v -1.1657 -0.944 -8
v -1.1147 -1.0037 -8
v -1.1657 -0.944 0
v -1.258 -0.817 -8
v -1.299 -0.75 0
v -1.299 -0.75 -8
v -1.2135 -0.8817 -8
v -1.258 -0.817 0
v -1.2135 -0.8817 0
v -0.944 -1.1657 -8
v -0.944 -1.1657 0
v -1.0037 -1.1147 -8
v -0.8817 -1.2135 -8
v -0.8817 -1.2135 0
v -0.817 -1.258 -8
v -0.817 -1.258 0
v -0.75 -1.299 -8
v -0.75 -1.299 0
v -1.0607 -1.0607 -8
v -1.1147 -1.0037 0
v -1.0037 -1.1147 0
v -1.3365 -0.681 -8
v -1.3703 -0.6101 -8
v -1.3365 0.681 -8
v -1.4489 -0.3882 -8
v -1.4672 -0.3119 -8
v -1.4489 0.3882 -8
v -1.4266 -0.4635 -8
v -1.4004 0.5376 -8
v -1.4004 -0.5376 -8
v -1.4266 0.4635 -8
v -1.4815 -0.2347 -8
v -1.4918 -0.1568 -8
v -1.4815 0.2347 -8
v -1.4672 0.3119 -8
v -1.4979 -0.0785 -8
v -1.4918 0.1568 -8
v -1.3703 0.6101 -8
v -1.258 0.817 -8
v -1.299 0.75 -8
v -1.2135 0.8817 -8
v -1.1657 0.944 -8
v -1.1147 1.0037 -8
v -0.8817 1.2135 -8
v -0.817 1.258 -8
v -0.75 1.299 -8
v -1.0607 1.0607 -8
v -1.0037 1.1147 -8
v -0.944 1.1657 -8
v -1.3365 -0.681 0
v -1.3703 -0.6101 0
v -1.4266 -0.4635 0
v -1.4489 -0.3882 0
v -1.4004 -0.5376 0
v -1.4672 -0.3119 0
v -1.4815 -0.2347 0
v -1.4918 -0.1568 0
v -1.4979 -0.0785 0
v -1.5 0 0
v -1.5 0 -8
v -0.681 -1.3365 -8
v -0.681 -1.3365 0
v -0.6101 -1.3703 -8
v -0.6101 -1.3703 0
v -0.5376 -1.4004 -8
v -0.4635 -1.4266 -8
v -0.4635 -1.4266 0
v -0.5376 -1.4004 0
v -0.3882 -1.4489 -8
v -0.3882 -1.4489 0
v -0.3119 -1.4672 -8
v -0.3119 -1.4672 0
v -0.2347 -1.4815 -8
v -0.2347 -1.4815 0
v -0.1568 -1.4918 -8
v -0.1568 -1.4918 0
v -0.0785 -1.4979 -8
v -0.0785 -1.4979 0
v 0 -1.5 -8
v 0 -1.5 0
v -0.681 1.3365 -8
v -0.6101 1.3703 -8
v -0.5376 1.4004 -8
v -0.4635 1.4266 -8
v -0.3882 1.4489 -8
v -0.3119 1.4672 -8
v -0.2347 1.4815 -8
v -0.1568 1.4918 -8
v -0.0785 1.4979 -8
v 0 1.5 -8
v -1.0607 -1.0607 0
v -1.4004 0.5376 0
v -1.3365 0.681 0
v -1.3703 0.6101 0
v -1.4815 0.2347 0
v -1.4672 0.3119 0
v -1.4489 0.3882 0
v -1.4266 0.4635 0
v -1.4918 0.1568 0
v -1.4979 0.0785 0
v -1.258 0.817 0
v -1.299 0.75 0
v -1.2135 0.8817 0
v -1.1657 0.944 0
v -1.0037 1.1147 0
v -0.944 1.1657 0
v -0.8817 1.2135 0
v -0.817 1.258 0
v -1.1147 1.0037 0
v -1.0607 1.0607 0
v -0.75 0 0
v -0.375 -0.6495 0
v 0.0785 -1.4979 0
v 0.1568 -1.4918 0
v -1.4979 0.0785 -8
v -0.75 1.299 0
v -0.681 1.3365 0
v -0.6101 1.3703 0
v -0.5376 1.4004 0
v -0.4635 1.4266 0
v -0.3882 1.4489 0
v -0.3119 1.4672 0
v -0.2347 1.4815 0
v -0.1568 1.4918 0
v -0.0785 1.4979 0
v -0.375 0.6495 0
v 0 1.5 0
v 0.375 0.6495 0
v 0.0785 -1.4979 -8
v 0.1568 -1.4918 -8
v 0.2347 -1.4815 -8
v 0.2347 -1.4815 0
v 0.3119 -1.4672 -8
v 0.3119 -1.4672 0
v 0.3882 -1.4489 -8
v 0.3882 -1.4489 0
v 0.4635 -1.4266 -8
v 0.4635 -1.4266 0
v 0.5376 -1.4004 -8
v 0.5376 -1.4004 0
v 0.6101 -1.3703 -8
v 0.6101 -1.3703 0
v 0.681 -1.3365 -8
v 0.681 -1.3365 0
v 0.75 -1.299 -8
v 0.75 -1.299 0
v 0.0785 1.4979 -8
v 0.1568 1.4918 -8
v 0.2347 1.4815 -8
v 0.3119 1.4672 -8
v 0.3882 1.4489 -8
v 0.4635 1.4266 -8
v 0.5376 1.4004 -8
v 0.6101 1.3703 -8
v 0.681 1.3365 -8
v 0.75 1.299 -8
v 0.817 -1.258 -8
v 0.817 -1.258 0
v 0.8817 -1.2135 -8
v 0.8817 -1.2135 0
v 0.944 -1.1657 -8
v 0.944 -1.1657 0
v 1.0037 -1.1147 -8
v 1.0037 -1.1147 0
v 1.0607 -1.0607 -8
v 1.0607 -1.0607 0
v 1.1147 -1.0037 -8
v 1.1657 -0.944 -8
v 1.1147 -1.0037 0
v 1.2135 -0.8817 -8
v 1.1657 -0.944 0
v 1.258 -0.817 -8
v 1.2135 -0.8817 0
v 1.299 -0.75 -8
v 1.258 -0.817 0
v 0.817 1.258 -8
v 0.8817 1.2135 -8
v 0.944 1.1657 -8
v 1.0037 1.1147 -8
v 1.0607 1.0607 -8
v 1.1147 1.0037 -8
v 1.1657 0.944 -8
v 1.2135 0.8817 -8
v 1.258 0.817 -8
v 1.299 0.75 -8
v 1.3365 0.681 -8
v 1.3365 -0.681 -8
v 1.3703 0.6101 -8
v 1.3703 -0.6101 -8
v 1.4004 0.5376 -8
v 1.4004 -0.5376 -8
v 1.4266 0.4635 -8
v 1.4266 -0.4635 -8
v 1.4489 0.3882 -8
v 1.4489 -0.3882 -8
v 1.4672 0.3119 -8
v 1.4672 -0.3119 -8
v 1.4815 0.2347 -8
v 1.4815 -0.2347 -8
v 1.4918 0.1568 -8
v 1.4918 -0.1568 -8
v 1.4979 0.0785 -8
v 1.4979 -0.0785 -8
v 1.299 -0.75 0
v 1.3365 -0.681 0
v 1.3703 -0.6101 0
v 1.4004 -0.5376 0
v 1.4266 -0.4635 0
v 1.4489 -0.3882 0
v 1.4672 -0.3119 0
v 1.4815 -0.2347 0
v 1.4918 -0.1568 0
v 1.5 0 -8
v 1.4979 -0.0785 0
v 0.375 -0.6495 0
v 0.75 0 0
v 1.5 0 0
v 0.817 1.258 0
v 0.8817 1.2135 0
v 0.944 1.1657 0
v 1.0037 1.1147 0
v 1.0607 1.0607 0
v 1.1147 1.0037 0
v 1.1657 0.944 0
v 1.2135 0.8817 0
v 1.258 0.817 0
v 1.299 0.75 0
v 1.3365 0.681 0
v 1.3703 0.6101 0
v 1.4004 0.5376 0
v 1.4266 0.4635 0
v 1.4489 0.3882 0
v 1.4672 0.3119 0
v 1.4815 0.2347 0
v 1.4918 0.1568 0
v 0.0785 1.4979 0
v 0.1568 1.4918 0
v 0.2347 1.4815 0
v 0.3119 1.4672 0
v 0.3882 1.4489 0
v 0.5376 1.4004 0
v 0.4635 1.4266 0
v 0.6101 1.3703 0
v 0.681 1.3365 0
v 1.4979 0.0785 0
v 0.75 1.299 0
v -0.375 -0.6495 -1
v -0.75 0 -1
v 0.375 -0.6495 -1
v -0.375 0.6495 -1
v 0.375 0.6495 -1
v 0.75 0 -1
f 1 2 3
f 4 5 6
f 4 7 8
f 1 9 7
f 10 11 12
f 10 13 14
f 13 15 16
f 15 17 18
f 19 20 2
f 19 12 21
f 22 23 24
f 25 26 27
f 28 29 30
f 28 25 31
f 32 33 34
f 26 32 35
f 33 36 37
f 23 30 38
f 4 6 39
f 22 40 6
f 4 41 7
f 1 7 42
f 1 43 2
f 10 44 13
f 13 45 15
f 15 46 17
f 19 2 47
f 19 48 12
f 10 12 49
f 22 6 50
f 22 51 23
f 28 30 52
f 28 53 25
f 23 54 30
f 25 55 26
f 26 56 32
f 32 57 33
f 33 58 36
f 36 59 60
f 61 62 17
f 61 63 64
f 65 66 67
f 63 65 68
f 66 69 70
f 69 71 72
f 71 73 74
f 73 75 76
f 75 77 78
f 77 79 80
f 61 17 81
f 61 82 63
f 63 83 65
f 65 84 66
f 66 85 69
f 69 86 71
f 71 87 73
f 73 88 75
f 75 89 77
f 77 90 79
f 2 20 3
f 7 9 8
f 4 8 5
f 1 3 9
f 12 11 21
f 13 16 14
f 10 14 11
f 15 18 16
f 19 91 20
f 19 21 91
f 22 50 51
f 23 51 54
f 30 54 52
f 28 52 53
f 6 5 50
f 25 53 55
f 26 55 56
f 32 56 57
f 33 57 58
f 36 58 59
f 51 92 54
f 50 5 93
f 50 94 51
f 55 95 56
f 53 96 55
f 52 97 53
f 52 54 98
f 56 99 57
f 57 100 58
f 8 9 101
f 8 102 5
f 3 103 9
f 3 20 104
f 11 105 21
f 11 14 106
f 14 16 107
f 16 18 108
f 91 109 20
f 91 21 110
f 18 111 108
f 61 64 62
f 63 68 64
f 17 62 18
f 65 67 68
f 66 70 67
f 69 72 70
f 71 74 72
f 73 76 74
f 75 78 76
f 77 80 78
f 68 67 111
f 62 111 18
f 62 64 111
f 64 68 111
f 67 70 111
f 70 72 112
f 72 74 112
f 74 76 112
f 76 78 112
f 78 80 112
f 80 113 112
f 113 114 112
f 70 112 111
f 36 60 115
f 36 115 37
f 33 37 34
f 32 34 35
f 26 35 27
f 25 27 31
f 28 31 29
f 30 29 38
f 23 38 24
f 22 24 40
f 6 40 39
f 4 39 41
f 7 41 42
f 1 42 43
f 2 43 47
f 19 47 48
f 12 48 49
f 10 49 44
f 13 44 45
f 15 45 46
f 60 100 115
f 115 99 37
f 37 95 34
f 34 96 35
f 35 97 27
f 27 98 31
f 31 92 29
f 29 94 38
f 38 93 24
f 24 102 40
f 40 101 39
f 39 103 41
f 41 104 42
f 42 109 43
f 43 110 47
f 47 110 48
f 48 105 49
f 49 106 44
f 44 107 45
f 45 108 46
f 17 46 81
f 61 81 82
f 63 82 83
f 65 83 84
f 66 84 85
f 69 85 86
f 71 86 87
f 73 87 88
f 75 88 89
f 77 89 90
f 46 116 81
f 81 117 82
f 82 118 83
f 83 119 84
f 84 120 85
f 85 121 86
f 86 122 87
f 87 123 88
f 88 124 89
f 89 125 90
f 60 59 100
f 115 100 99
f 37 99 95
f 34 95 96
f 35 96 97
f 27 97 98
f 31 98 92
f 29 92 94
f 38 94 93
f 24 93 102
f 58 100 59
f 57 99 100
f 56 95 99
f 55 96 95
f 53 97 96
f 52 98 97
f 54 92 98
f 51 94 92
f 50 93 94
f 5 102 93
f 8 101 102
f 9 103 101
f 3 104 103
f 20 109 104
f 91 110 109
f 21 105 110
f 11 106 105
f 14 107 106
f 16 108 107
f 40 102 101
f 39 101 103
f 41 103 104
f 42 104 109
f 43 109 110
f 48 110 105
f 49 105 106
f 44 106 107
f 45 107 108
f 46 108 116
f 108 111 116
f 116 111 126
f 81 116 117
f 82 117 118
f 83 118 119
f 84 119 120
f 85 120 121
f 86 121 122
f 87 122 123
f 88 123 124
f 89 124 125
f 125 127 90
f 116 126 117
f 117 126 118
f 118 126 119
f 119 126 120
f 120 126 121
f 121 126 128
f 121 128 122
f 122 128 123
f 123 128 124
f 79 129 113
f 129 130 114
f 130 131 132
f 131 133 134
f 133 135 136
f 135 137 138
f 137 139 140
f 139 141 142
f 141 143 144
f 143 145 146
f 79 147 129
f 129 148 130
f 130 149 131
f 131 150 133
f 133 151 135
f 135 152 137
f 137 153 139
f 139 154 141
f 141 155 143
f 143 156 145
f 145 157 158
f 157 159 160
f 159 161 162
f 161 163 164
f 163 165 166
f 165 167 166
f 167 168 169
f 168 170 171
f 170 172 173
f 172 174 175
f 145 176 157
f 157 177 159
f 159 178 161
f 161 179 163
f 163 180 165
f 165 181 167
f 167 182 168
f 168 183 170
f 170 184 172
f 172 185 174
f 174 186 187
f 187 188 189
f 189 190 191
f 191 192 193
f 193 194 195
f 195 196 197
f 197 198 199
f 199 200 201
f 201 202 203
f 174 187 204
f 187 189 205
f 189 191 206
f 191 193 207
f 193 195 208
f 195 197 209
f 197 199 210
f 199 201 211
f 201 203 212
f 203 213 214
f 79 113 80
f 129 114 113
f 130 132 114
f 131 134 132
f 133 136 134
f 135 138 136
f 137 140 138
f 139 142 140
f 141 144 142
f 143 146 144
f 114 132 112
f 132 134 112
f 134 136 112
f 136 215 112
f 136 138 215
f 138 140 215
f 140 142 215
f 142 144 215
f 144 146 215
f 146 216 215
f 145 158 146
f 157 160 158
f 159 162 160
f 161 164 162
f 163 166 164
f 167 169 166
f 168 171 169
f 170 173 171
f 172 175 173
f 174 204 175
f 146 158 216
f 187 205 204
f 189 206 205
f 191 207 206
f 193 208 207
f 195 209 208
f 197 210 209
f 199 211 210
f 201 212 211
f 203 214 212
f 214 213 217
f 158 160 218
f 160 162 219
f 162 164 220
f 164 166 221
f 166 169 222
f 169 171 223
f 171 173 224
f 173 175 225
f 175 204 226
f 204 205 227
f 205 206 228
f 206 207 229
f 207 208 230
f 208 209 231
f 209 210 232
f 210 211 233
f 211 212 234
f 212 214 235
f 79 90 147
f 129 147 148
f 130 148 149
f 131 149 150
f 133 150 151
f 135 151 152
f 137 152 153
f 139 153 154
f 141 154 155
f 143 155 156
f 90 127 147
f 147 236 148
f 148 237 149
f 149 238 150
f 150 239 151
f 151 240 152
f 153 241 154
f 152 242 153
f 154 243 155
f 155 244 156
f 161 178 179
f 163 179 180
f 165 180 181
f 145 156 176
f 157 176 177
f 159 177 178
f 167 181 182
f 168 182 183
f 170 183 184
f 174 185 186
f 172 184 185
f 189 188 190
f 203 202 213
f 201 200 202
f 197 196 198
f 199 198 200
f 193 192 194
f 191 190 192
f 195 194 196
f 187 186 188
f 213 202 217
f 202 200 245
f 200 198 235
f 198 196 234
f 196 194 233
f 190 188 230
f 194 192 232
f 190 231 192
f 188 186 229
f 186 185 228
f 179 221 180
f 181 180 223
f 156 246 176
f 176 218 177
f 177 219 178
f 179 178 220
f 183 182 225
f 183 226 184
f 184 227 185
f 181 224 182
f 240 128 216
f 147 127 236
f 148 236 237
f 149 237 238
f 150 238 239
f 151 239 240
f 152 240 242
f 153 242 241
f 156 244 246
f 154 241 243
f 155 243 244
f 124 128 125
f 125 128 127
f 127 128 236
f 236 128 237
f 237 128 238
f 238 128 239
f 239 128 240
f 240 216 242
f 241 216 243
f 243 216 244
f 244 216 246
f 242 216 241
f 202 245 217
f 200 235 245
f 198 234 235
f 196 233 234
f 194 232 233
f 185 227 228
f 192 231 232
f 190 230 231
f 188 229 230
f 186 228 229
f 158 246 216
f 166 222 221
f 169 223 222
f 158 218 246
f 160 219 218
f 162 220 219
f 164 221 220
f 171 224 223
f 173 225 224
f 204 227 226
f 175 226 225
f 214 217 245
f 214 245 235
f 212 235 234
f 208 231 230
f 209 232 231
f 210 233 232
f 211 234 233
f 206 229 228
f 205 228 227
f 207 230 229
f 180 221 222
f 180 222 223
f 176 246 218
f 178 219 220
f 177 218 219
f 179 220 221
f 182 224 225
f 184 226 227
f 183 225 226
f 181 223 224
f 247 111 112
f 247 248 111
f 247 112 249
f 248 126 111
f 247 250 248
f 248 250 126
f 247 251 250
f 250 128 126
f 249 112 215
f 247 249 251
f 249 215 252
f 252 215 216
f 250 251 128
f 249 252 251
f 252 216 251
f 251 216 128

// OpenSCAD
// file: C:/gh/oomlout_oobb_part_motor_gearbox_wave_drive_version_5/parts/oobb_part_motor_gearbox_wave_drive_version_5_12_to_1_reduction/compact_helpers.scad
// Reusable native geometry helpers.
function polar(r,a)=[r*cos(a),r*sin(a)];
function rotate_point(p,a)=[p[0]*cos(a)-p[1]*sin(a),p[0]*sin(a)+p[1]*cos(a)];
function profile_point(t)=let(
    s=sqrt(pow(pitch_radius,2)-pow(eccentricity*sin(cavity_count*t),2)),
    r=eccentricity*cos(cavity_count*t)+s,
    xi=atan2(eccentricity*cavity_count*sin(cavity_count*t),s),
    rr=roller_radius+profile_clearance)
    [r*cos(t)+rr*cos(t+xi),r*sin(t)+rr*sin(t+xi)];
function profile_points(upper=false)=[for(i=[0:cavity_count*profile_samples_per_cavity-1])
    rotate_point(profile_point(360*i/(cavity_count*profile_samples_per_cavity)),0)];
function roller_position(i,a,upper=false)=let(
    t=-a/roller_count+360*i/roller_count,
    rel=t-a-(upper?180:0),
    r=eccentricity*cos(rel)+sqrt(pow(pitch_radius,2)-pow(eccentricity*sin(rel),2))) polar(r,t);
module tube(ro,ri,h) { difference() { cylinder(r=ro,h=h); translate([0,0,-eps]) cylinder(r=ri,h=h+2*eps); } }
module screw_hole(size,h) { scale([1,1,h]) { if(size=="m2") oobb_hole_m2(); if(size=="m3") oobb_hole_m3(); if(size=="m6") oobb_hole_m6(); } }
module socket_recess(size,depth) {
    // OOBB socket head starts at the under-head plane and extends outward.
    scale([1,1,depth/(size=="m3"?3.2:2.2)]) {
        if(size=="m3") oobb_socket_m3(); else oobb_socket_m2();
    }
}
module at_mounts(points) { for(p=points) translate([p[0],p[1],0]) children(); }
module shaft_cut(h,fit=shaft_fit_clearance) {
    linear_extrude(h) intersection() {
        circle(r=input_shaft_diameter/2+fit);
        translate([-10,-10]) square([10+input_shaft_diameter/2-input_shaft_flat_depth+fit,20]);
    }
}
module rounded_rectangle_plate(size=[119,119,3],radius=1.5) {
    hull() for(x=[-1,1],y=[-1,1]) translate([x*(size[0]/2-radius),y*(size[1]/2-radius),0]) cylinder(r=radius,h=size[2]);
}
module grid_cuts(h) {
    // Actual OOBB grid centres: six units are centred on half-pitch offsets.
    for(i=[0:base_width-1],j=[0:base_height-1])
        let(x=(i-(base_width-1)/2)*oobb_grid_pitch,y=(j-(base_height-1)/2)*oobb_grid_pitch)
        if(sqrt(x*x+y*y)>housing_radius+3.5)
            translate([x,y,-eps]) screw_hole("m6",h+2*eps);
}
module wave_generator() {
    render(convexity=20) difference() {
        tube(wave_radius,12.6,wave_height);
        translate([0,0,wave_seat_z]) cylinder(r=13.5+bearing_seat_clearance,h=wave_height);
        translate([0,0,wave_height-wave_cap_depth]) cylinder(r=22.15,h=wave_cap_depth+eps);
        at_mounts(wave_mounts) {
            translate([0,0,-eps]) screw_hole("m3",wave_height+2*eps);
            translate([0,0,wave_nut_z]) scale([1,1,(wave_height-wave_cap_depth-wave_nut_z+eps)/2.7]) oobb_nut_m3();
        }
    }
}
module wave_cap() {
    render(convexity=20) difference() {
        tube(22,12.6,wave_cap_depth);
        at_mounts(wave_mounts) {
            translate([0,0,-eps]) screw_hole("m3",wave_cap_depth+2*eps);
            translate([0,0,wave_cap_depth-wave_head_recess]) socket_recess("m3",wave_head_recess+eps);
        }
    }
}
// file: C:/gh/oomlout_oobb_part_motor_gearbox_wave_drive_version_5/parts/oobb_part_motor_gearbox_wave_drive_version_5_12_to_1_reduction/oobb_hardware.scad
module oobb_rounded_rectangle_edges(size, radius, radius_top, radius_bottom) {
      rt=radius_top; rb=radius_bottom; depth=size[2]; n=16;
      lower=rb==0 ? [[radius,0]] :
        [for(i=[0:n]) let(a=-90+90*i/n) [radius-rb+rb*cos(a),rb+rb*sin(a)]];
      upper=rt==0 ? [[radius,depth]] :
        [for(i=[0:n]) let(a=90*i/n) [radius-rt+rt*cos(a),depth-rt+rt*sin(a)]];
      hull() for(x=[-size[0]/2+radius,size[0]/2-radius])
        for(y=[-size[1]/2+radius,size[1]/2-radius])
          translate([x,y,0]) rotate_extrude()
            polygon(concat([[0,0]],lower,upper,[[0,depth]]));
    }
// Generated from installed OOBB v5. All primitives use overhang=True.

module oobb_motor_plate_body() {


difference() {
	union() {
		translate(v = [0, 0, 0]) {
			rotate(a = [0, 0, 0]) {
				difference() {
					union() {
						oobb_rounded_rectangle_edges(radius = 1.5, radius_bottom = 1.5, radius_top = 1.5, size = [89.0, 89.0, 4.0]);
					}
					union();
				}
			}
		}
	}
	union();
}

}

module oobb_hole_m2() {


difference() {
	union() {
		cylinder(h = 1, r = 1.35);
	}
	union();
}

}

module oobb_hole_m3() {


difference() {
	union() {
		cylinder(h = 1, r = 1.8);
	}
	union();
}

}

module oobb_hole_m6() {


difference() {
	union() {
		cylinder(h = 1, r = 3.25);
	}
	union();
}

}

module oobb_nut_m2() {


difference() {
	union() {
		translate(v = [0, 0, 0]) {
			rotate(a = [0, 0, 0]) {
				difference() {
					union() {
						linear_extrude(height = 2.2) {
							polygon(points = [[2.4234, 0.0], [1.2117000000000002, 2.0987259635312085], [-1.2116999999999996, 2.0987259635312085], [-2.4234, 2.967809053053696e-16], [-1.211700000000001, -2.098725963531208], [1.2116999999999984, -2.0987259635312094]]);
						}
						translate(v = [-1.25, -2.75, -0.3]) {
							cube(size = [2.5, 5.5, 0.3]);
						}
						translate(v = [-1.25, -1.25, -0.6]) {
							cube(size = [2.5, 2.5, 0.3]);
						}
						translate(v = [-1.25, -2.75, 2.2]) {
							cube(size = [2.5, 5.5, 0.3]);
						}
						translate(v = [-1.25, -1.25, 2.5]) {
							cube(size = [2.5, 2.5, 0.3]);
						}
					}
					union();
				}
			}
		}
	}
	union();
}

}

module oobb_socket_m2() {


difference() {
	union() {
		translate(v = [0, 0, 0]) {
			rotate(a = [0, 0, 0]) {
				difference() {
					union() {
						cylinder(h = 2.2, r = 2.1);
						translate(v = [-1.25, -2.75, -0.3]) {
							cube(size = [2.5, 5.5, 0.3]);
						}
						translate(v = [-1.25, -1.25, -0.6]) {
							cube(size = [2.5, 2.5, 0.3]);
						}
					}
					union();
				}
			}
		}
	}
	union();
}

}

module oobb_nut_m3() {


difference() {
	union() {
		translate(v = [0, 0, 0]) {
			rotate(a = [0, 0, 0]) {
				difference() {
					union() {
						linear_extrude(height = 2.7) {
							polygon(points = [[3.4619999999999997, 0.0], [1.7310000000000003, 2.9981799479017264], [-1.7309999999999992, 2.9981799479017264], [-3.4619999999999997, 4.2397272186481365e-16], [-1.7310000000000014, -2.998179947901726], [1.7309999999999977, -2.9981799479017277]]);
						}
						translate(v = [-1.75, -3.25, -0.3]) {
							cube(size = [3.5, 6.5, 0.3]);
						}
						translate(v = [-1.75, -1.75, -0.6]) {
							cube(size = [3.5, 3.5, 0.3]);
						}
						translate(v = [-1.75, -3.25, 2.7]) {
							cube(size = [3.5, 6.5, 0.3]);
						}
						translate(v = [-1.75, -1.75, 3.0]) {
							cube(size = [3.5, 3.5, 0.3]);
						}
					}
					union();
				}
			}
		}
	}
	union();
}

}

module oobb_socket_m3() {


difference() {
	union() {
		translate(v = [0, 0, 0]) {
			rotate(a = [0, 0, 0]) {
				difference() {
					union() {
						cylinder(h = 3.2, r = 3.0);
						translate(v = [-1.75, -3.25, -0.3]) {
							cube(size = [3.5, 6.5, 0.3]);
						}
						translate(v = [-1.75, -1.75, -0.6]) {
							cube(size = [3.5, 3.5, 0.3]);
						}
					}
					union();
				}
			}
		}
	}
	union();
}

}

module oobb_nut_m6() {


difference() {
	union() {
		translate(v = [0, 0, 0]) {
			rotate(a = [0, 0, 0]) {
				difference() {
					union() {
						linear_extrude(height = 5.2) {
							polygon(points = [[5.914249999999999, 0.0], [2.957125, 5.1218907443321156], [-2.9571249999999982, 5.1218907443321156], [-5.914249999999999, 7.242867331857232e-16], [-2.9571250000000022, -5.121890744332115], [2.9571249999999956, -5.121890744332118]]);
						}
						translate(v = [-2.875, -5.0, -0.3]) {
							cube(size = [5.75, 10, 0.3]);
						}
						translate(v = [-2.875, -2.875, -0.6]) {
							cube(size = [5.75, 5.75, 0.3]);
						}
						translate(v = [-2.875, -5.0, 5.2]) {
							cube(size = [5.75, 10, 0.3]);
						}
						translate(v = [-2.875, -2.875, 5.5]) {
							cube(size = [5.75, 5.75, 0.3]);
						}
					}
					union();
				}
			}
		}
	}
	union();
}

}
// file: C:/gh/oomlout_oobb_part_motor_gearbox_wave_drive_version_5/parts/oobb_part_motor_gearbox_wave_drive_version_5_12_to_1_reduction/parameters.scad
// Generated by working_scad.py. Edit the Python recipe to persist changes.
style = "version_5";
reduction = 12;
bearing_output = "6810";
bearing_wave = "6704";
roller_diameter = 7.0;
roller_bore_diameter = 3.2;
roller_length = 12.0;
roller_material = "nylon";
roller_bank_count = 1;
motor_plate_depth = 4.0;
motor_body_depth = 40.0;
motor_shaft_length = 24.0;
motor_hole_pitch = 31.0;
motor_thread_depth = 6.0;
motor_pilot_diameter = 22.0;
motor_pilot_height = 2.0;
output_holder_wall = 7.0;
max_screw_length = 35.0;
eccentricity = 0.75;
wave_radius = 23.25;
profile_clearance = 0.15;
roller_slot_clearance = 0.3;
roller_end_clearance = 0.3;
cage_wall = 4.0;
cage_plate_depth = 3.0;
bearing_seat_clearance = 0.1;
journal_clearance = 0.05;
bearing_axial_clearance = 0.2;
output_plate_diameter = 65.0;
output_plate_depth = 6.0;
output_grid_pitch = 15.0;
output_face_clearance = 0.3;
output_socket_recess = 4.0;
output_screw_length = 16;
output_nut_depth = 5.2;
output_nut_height = 5.0;
motor_shaft_end_clearance = 0.5;
base_width = 6;
base_height = 6;
oobb_grid_pitch = 15.0;
oobb_size_allowance = 1.0;
base_edge_radius = 1.5;
housing_flange_corner_radius = 1.5;
housing_screw_pitch_radius = 35.5;
housing_screw_count = 6;
input_shaft_diameter = 5.0;
input_shaft_flat_depth = 0.5;
shaft_fit_clearance = 0.1;
cage_screw_count = 4;
profile_samples_per_cavity = 100;
circle_fragments = 120;
overhang = true;
run_scad = true;
run_solidcraft = false;
generate_stl = true;
generate_previews = true;
generate_renders = true;
validate_geometry = true;
package_outputs = true;
render_threads = 8;
variant = "default";
// main file
include <C:/gh/oomlout_oobb_part_motor_gearbox_wave_drive_version_5/parts/oobb_part_motor_gearbox_wave_drive_version_5_12_to_1_reduction/parameters.scad>
include <C:/gh/oomlout_oobb_part_motor_gearbox_wave_drive_version_5/parts/oobb_part_motor_gearbox_wave_drive_version_5_12_to_1_reduction/oobb_hardware.scad>
include <C:/gh/oomlout_oobb_part_motor_gearbox_wave_drive_version_5/parts/oobb_part_motor_gearbox_wave_drive_version_5_12_to_1_reduction/geometry.scad>
difference() { translate([0,0,-8]) cylinder(r=1.5,h=8); translate([0,0,-1]) cylinder(r=0.75,h=1.01,$fn=6); }
